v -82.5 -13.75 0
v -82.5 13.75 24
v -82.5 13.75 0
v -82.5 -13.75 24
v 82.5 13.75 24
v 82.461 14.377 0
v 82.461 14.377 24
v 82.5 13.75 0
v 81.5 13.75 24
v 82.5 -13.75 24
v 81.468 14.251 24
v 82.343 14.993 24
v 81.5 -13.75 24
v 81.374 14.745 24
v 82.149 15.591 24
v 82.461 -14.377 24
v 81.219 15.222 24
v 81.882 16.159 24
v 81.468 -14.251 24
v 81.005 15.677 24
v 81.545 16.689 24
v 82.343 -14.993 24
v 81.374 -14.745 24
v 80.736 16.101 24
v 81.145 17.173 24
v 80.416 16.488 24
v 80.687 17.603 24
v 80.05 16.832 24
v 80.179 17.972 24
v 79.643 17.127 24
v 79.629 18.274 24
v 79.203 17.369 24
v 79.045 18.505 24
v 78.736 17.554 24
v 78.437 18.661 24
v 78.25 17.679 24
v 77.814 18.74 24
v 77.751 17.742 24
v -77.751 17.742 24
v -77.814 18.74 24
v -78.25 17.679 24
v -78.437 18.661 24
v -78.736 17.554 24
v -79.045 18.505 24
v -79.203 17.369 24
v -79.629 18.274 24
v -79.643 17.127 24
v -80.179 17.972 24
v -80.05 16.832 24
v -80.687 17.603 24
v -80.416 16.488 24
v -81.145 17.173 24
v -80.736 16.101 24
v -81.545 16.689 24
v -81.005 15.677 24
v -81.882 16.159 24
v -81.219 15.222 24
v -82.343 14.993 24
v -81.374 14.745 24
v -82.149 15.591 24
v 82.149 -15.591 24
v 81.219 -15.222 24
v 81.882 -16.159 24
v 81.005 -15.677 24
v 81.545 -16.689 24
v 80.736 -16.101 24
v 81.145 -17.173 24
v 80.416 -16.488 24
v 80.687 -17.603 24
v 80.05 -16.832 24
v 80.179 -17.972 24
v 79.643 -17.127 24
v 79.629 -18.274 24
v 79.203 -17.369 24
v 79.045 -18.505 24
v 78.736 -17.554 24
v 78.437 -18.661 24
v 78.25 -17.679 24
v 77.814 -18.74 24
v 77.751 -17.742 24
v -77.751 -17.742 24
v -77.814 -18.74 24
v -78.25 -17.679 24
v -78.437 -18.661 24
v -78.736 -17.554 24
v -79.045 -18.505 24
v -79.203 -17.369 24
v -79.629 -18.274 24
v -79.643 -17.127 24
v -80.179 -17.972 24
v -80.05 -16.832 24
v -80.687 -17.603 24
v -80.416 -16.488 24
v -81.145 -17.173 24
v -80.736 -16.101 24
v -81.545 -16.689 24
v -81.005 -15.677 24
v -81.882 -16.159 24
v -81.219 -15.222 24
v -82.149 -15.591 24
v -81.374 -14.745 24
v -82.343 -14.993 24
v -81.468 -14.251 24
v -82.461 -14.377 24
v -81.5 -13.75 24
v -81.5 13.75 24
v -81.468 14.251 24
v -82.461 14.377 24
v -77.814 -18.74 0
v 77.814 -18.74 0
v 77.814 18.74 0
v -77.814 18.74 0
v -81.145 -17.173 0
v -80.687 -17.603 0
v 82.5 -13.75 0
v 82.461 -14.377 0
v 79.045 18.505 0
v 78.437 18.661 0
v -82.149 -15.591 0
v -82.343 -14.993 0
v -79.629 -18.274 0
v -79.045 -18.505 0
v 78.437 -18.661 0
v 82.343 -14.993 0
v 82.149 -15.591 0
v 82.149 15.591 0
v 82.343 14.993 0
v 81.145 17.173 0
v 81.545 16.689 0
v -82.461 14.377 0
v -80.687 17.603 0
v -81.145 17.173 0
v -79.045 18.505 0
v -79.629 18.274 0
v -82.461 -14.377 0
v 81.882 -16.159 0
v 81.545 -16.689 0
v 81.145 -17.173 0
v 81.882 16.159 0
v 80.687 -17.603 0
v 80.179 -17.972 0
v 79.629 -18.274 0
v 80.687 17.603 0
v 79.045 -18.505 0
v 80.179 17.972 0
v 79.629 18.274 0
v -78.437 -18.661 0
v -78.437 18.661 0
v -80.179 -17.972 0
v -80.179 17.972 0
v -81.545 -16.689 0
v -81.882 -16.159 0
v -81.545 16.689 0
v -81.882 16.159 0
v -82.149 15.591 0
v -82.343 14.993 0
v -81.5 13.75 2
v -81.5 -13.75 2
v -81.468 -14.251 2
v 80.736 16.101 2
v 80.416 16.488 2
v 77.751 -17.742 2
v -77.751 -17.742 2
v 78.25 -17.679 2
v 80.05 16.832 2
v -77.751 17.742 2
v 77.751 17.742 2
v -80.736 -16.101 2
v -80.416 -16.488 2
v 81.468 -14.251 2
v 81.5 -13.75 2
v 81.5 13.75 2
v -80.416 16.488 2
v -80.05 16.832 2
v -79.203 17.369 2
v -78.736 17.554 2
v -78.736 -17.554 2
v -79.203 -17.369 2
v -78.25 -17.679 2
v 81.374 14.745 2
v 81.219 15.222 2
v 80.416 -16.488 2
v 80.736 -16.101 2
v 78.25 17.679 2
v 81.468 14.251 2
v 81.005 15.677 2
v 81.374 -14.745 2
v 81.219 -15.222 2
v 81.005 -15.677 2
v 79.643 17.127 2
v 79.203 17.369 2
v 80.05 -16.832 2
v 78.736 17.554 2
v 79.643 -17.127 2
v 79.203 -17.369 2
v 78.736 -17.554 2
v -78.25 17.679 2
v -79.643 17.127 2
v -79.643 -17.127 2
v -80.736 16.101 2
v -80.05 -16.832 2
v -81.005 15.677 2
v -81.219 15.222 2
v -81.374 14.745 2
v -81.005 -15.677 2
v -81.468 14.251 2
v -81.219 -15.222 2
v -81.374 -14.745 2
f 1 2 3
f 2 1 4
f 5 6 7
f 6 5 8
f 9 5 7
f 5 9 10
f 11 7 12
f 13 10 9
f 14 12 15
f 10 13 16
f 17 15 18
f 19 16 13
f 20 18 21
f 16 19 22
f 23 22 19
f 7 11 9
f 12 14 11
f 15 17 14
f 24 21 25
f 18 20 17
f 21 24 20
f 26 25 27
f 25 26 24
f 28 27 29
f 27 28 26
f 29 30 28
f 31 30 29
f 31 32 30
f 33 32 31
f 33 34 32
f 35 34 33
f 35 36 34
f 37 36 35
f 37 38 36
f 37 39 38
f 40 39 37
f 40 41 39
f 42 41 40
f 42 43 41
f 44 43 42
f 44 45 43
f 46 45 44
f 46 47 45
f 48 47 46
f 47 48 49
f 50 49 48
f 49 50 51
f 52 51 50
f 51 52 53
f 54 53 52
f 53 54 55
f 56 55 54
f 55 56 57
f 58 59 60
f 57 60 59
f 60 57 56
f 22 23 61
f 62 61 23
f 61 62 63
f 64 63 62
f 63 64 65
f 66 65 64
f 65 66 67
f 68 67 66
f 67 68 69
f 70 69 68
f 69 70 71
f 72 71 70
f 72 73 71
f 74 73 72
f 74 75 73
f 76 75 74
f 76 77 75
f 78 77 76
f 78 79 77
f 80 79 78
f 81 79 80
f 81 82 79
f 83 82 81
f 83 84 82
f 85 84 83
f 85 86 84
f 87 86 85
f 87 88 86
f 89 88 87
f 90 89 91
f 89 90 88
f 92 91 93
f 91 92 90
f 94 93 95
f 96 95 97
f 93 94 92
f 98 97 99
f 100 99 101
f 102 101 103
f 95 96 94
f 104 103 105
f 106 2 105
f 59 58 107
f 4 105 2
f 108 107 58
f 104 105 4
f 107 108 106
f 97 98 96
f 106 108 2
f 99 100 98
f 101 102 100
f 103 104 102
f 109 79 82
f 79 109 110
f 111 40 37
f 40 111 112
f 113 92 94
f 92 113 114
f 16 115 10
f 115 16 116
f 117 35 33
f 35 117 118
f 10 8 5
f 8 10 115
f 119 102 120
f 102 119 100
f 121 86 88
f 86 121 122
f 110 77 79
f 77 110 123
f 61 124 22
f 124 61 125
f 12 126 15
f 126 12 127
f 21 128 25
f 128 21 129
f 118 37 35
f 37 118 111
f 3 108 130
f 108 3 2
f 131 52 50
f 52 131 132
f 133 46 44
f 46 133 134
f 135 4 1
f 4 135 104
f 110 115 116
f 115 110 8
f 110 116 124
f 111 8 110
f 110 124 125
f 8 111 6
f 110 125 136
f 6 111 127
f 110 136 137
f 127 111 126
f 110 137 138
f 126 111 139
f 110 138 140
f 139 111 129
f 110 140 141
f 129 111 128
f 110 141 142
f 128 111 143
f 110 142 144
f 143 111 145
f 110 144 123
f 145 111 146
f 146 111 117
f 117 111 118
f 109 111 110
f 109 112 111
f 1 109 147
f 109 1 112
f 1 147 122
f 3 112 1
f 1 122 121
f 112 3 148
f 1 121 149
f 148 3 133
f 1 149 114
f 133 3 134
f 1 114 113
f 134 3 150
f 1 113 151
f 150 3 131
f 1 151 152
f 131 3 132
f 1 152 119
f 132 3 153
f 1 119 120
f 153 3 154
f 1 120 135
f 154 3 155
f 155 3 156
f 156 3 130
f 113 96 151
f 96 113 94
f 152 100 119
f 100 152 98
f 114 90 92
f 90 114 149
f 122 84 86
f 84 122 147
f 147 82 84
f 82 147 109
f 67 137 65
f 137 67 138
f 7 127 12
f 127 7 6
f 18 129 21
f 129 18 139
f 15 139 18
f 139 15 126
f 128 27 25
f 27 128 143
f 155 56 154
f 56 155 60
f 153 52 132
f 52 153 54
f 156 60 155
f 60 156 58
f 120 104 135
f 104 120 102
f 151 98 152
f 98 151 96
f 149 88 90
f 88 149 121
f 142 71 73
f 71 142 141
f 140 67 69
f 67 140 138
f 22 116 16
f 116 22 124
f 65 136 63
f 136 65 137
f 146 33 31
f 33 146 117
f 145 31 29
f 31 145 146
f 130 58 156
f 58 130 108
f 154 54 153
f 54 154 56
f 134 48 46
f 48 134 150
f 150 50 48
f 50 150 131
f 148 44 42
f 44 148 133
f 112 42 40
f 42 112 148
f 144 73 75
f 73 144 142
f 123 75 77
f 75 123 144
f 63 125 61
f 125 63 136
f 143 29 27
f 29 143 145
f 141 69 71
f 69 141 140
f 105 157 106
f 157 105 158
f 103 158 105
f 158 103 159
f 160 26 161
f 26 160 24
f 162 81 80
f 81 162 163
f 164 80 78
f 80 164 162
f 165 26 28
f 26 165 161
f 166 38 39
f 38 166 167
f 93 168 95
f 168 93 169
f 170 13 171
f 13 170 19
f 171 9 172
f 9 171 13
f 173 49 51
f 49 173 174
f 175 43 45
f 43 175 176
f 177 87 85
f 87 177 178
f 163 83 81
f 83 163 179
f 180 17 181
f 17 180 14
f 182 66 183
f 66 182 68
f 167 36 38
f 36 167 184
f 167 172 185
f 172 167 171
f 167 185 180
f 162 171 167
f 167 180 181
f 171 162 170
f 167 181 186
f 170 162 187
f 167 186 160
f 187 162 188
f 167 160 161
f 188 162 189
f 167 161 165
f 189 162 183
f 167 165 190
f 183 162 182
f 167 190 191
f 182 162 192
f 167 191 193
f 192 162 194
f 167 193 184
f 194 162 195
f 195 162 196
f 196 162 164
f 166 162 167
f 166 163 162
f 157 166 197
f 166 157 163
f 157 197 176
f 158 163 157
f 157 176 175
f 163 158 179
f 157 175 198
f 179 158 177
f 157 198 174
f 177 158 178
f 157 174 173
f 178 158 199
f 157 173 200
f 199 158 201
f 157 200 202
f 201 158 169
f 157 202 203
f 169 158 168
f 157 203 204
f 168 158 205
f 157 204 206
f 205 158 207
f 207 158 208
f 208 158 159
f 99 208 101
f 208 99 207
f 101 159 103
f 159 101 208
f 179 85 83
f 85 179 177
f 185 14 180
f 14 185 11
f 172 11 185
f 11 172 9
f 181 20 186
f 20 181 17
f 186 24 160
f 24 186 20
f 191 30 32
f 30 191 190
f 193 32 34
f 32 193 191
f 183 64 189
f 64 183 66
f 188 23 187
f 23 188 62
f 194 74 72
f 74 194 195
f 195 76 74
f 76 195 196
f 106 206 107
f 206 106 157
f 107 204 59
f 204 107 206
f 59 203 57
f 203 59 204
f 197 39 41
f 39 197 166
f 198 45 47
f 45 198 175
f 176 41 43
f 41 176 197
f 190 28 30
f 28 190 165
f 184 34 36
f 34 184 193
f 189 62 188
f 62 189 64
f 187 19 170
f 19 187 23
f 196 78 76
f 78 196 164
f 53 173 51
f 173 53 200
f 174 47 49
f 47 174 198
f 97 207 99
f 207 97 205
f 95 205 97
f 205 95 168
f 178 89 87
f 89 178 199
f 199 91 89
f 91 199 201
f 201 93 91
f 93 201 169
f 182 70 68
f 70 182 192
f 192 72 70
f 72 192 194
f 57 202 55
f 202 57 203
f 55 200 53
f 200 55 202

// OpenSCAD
$fn = 50;


difference() {
	union() {
		hull() {
			translate(v = [-77.5000000000, 13.7500000000, 0]) {
				cylinder(h = 24, r = 5);
			}
			translate(v = [77.5000000000, 13.7500000000, 0]) {
				cylinder(h = 24, r = 5);
			}
			translate(v = [-77.5000000000, -13.7500000000, 0]) {
				cylinder(h = 24, r = 5);
			}
			translate(v = [77.5000000000, -13.7500000000, 0]) {
				cylinder(h = 24, r = 5);
			}
		}
	}
	union() {
		translate(v = [0, 0, 2]) {
			hull() {
				translate(v = [-77.5000000000, 13.7500000000, 0]) {
					cylinder(h = 22, r = 4);
				}
				translate(v = [77.5000000000, 13.7500000000, 0]) {
					cylinder(h = 22, r = 4);
				}
				translate(v = [-77.5000000000, -13.7500000000, 0]) {
					cylinder(h = 22, r = 4);
				}
				translate(v = [77.5000000000, -13.7500000000, 0]) {
					cylinder(h = 22, r = 4);
				}
			}
		}
	}
}
